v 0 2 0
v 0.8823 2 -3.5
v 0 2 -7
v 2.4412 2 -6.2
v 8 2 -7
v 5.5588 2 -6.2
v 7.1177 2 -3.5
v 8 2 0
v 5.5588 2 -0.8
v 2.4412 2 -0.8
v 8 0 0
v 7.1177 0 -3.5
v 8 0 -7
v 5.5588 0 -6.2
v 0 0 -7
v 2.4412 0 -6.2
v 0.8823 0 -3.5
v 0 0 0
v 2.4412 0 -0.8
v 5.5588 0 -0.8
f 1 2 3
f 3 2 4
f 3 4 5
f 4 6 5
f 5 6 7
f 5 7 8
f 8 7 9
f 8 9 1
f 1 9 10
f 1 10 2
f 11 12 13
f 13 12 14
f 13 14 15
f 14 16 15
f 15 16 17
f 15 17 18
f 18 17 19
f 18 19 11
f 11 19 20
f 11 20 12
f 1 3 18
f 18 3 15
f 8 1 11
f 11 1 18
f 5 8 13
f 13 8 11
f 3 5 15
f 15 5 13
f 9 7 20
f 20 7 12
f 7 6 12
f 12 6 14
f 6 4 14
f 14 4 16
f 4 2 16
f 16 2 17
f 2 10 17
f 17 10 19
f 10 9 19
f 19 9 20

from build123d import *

# Parameters (mm, degrees)
SKETCH1_W           = 8
SKETCH1_H           = 7
BOSS_EXTRUDE1_DEPTH = 2


with BuildPart() as part:
    # Sketch1 → Boss-Extrude1 (new body)
    with BuildSketch(Plane(origin=(0, 0, 0), x_dir=(1, 0, 0), z_dir=(0, 1, 0))):
        with Locations((4, 3.5)):
            Rectangle(SKETCH1_W, SKETCH1_H)
        Polygon((7.117691454, 3.5), (5.558845727, 6.2), (2.441154273, 6.2), (0.882308546, 3.5), (2.441154273, 0.8), (5.558845727, 0.8), align=None, mode=Mode.SUBTRACT)
    extrude(amount=BOSS_EXTRUDE1_DEPTH)


solid = part.part
